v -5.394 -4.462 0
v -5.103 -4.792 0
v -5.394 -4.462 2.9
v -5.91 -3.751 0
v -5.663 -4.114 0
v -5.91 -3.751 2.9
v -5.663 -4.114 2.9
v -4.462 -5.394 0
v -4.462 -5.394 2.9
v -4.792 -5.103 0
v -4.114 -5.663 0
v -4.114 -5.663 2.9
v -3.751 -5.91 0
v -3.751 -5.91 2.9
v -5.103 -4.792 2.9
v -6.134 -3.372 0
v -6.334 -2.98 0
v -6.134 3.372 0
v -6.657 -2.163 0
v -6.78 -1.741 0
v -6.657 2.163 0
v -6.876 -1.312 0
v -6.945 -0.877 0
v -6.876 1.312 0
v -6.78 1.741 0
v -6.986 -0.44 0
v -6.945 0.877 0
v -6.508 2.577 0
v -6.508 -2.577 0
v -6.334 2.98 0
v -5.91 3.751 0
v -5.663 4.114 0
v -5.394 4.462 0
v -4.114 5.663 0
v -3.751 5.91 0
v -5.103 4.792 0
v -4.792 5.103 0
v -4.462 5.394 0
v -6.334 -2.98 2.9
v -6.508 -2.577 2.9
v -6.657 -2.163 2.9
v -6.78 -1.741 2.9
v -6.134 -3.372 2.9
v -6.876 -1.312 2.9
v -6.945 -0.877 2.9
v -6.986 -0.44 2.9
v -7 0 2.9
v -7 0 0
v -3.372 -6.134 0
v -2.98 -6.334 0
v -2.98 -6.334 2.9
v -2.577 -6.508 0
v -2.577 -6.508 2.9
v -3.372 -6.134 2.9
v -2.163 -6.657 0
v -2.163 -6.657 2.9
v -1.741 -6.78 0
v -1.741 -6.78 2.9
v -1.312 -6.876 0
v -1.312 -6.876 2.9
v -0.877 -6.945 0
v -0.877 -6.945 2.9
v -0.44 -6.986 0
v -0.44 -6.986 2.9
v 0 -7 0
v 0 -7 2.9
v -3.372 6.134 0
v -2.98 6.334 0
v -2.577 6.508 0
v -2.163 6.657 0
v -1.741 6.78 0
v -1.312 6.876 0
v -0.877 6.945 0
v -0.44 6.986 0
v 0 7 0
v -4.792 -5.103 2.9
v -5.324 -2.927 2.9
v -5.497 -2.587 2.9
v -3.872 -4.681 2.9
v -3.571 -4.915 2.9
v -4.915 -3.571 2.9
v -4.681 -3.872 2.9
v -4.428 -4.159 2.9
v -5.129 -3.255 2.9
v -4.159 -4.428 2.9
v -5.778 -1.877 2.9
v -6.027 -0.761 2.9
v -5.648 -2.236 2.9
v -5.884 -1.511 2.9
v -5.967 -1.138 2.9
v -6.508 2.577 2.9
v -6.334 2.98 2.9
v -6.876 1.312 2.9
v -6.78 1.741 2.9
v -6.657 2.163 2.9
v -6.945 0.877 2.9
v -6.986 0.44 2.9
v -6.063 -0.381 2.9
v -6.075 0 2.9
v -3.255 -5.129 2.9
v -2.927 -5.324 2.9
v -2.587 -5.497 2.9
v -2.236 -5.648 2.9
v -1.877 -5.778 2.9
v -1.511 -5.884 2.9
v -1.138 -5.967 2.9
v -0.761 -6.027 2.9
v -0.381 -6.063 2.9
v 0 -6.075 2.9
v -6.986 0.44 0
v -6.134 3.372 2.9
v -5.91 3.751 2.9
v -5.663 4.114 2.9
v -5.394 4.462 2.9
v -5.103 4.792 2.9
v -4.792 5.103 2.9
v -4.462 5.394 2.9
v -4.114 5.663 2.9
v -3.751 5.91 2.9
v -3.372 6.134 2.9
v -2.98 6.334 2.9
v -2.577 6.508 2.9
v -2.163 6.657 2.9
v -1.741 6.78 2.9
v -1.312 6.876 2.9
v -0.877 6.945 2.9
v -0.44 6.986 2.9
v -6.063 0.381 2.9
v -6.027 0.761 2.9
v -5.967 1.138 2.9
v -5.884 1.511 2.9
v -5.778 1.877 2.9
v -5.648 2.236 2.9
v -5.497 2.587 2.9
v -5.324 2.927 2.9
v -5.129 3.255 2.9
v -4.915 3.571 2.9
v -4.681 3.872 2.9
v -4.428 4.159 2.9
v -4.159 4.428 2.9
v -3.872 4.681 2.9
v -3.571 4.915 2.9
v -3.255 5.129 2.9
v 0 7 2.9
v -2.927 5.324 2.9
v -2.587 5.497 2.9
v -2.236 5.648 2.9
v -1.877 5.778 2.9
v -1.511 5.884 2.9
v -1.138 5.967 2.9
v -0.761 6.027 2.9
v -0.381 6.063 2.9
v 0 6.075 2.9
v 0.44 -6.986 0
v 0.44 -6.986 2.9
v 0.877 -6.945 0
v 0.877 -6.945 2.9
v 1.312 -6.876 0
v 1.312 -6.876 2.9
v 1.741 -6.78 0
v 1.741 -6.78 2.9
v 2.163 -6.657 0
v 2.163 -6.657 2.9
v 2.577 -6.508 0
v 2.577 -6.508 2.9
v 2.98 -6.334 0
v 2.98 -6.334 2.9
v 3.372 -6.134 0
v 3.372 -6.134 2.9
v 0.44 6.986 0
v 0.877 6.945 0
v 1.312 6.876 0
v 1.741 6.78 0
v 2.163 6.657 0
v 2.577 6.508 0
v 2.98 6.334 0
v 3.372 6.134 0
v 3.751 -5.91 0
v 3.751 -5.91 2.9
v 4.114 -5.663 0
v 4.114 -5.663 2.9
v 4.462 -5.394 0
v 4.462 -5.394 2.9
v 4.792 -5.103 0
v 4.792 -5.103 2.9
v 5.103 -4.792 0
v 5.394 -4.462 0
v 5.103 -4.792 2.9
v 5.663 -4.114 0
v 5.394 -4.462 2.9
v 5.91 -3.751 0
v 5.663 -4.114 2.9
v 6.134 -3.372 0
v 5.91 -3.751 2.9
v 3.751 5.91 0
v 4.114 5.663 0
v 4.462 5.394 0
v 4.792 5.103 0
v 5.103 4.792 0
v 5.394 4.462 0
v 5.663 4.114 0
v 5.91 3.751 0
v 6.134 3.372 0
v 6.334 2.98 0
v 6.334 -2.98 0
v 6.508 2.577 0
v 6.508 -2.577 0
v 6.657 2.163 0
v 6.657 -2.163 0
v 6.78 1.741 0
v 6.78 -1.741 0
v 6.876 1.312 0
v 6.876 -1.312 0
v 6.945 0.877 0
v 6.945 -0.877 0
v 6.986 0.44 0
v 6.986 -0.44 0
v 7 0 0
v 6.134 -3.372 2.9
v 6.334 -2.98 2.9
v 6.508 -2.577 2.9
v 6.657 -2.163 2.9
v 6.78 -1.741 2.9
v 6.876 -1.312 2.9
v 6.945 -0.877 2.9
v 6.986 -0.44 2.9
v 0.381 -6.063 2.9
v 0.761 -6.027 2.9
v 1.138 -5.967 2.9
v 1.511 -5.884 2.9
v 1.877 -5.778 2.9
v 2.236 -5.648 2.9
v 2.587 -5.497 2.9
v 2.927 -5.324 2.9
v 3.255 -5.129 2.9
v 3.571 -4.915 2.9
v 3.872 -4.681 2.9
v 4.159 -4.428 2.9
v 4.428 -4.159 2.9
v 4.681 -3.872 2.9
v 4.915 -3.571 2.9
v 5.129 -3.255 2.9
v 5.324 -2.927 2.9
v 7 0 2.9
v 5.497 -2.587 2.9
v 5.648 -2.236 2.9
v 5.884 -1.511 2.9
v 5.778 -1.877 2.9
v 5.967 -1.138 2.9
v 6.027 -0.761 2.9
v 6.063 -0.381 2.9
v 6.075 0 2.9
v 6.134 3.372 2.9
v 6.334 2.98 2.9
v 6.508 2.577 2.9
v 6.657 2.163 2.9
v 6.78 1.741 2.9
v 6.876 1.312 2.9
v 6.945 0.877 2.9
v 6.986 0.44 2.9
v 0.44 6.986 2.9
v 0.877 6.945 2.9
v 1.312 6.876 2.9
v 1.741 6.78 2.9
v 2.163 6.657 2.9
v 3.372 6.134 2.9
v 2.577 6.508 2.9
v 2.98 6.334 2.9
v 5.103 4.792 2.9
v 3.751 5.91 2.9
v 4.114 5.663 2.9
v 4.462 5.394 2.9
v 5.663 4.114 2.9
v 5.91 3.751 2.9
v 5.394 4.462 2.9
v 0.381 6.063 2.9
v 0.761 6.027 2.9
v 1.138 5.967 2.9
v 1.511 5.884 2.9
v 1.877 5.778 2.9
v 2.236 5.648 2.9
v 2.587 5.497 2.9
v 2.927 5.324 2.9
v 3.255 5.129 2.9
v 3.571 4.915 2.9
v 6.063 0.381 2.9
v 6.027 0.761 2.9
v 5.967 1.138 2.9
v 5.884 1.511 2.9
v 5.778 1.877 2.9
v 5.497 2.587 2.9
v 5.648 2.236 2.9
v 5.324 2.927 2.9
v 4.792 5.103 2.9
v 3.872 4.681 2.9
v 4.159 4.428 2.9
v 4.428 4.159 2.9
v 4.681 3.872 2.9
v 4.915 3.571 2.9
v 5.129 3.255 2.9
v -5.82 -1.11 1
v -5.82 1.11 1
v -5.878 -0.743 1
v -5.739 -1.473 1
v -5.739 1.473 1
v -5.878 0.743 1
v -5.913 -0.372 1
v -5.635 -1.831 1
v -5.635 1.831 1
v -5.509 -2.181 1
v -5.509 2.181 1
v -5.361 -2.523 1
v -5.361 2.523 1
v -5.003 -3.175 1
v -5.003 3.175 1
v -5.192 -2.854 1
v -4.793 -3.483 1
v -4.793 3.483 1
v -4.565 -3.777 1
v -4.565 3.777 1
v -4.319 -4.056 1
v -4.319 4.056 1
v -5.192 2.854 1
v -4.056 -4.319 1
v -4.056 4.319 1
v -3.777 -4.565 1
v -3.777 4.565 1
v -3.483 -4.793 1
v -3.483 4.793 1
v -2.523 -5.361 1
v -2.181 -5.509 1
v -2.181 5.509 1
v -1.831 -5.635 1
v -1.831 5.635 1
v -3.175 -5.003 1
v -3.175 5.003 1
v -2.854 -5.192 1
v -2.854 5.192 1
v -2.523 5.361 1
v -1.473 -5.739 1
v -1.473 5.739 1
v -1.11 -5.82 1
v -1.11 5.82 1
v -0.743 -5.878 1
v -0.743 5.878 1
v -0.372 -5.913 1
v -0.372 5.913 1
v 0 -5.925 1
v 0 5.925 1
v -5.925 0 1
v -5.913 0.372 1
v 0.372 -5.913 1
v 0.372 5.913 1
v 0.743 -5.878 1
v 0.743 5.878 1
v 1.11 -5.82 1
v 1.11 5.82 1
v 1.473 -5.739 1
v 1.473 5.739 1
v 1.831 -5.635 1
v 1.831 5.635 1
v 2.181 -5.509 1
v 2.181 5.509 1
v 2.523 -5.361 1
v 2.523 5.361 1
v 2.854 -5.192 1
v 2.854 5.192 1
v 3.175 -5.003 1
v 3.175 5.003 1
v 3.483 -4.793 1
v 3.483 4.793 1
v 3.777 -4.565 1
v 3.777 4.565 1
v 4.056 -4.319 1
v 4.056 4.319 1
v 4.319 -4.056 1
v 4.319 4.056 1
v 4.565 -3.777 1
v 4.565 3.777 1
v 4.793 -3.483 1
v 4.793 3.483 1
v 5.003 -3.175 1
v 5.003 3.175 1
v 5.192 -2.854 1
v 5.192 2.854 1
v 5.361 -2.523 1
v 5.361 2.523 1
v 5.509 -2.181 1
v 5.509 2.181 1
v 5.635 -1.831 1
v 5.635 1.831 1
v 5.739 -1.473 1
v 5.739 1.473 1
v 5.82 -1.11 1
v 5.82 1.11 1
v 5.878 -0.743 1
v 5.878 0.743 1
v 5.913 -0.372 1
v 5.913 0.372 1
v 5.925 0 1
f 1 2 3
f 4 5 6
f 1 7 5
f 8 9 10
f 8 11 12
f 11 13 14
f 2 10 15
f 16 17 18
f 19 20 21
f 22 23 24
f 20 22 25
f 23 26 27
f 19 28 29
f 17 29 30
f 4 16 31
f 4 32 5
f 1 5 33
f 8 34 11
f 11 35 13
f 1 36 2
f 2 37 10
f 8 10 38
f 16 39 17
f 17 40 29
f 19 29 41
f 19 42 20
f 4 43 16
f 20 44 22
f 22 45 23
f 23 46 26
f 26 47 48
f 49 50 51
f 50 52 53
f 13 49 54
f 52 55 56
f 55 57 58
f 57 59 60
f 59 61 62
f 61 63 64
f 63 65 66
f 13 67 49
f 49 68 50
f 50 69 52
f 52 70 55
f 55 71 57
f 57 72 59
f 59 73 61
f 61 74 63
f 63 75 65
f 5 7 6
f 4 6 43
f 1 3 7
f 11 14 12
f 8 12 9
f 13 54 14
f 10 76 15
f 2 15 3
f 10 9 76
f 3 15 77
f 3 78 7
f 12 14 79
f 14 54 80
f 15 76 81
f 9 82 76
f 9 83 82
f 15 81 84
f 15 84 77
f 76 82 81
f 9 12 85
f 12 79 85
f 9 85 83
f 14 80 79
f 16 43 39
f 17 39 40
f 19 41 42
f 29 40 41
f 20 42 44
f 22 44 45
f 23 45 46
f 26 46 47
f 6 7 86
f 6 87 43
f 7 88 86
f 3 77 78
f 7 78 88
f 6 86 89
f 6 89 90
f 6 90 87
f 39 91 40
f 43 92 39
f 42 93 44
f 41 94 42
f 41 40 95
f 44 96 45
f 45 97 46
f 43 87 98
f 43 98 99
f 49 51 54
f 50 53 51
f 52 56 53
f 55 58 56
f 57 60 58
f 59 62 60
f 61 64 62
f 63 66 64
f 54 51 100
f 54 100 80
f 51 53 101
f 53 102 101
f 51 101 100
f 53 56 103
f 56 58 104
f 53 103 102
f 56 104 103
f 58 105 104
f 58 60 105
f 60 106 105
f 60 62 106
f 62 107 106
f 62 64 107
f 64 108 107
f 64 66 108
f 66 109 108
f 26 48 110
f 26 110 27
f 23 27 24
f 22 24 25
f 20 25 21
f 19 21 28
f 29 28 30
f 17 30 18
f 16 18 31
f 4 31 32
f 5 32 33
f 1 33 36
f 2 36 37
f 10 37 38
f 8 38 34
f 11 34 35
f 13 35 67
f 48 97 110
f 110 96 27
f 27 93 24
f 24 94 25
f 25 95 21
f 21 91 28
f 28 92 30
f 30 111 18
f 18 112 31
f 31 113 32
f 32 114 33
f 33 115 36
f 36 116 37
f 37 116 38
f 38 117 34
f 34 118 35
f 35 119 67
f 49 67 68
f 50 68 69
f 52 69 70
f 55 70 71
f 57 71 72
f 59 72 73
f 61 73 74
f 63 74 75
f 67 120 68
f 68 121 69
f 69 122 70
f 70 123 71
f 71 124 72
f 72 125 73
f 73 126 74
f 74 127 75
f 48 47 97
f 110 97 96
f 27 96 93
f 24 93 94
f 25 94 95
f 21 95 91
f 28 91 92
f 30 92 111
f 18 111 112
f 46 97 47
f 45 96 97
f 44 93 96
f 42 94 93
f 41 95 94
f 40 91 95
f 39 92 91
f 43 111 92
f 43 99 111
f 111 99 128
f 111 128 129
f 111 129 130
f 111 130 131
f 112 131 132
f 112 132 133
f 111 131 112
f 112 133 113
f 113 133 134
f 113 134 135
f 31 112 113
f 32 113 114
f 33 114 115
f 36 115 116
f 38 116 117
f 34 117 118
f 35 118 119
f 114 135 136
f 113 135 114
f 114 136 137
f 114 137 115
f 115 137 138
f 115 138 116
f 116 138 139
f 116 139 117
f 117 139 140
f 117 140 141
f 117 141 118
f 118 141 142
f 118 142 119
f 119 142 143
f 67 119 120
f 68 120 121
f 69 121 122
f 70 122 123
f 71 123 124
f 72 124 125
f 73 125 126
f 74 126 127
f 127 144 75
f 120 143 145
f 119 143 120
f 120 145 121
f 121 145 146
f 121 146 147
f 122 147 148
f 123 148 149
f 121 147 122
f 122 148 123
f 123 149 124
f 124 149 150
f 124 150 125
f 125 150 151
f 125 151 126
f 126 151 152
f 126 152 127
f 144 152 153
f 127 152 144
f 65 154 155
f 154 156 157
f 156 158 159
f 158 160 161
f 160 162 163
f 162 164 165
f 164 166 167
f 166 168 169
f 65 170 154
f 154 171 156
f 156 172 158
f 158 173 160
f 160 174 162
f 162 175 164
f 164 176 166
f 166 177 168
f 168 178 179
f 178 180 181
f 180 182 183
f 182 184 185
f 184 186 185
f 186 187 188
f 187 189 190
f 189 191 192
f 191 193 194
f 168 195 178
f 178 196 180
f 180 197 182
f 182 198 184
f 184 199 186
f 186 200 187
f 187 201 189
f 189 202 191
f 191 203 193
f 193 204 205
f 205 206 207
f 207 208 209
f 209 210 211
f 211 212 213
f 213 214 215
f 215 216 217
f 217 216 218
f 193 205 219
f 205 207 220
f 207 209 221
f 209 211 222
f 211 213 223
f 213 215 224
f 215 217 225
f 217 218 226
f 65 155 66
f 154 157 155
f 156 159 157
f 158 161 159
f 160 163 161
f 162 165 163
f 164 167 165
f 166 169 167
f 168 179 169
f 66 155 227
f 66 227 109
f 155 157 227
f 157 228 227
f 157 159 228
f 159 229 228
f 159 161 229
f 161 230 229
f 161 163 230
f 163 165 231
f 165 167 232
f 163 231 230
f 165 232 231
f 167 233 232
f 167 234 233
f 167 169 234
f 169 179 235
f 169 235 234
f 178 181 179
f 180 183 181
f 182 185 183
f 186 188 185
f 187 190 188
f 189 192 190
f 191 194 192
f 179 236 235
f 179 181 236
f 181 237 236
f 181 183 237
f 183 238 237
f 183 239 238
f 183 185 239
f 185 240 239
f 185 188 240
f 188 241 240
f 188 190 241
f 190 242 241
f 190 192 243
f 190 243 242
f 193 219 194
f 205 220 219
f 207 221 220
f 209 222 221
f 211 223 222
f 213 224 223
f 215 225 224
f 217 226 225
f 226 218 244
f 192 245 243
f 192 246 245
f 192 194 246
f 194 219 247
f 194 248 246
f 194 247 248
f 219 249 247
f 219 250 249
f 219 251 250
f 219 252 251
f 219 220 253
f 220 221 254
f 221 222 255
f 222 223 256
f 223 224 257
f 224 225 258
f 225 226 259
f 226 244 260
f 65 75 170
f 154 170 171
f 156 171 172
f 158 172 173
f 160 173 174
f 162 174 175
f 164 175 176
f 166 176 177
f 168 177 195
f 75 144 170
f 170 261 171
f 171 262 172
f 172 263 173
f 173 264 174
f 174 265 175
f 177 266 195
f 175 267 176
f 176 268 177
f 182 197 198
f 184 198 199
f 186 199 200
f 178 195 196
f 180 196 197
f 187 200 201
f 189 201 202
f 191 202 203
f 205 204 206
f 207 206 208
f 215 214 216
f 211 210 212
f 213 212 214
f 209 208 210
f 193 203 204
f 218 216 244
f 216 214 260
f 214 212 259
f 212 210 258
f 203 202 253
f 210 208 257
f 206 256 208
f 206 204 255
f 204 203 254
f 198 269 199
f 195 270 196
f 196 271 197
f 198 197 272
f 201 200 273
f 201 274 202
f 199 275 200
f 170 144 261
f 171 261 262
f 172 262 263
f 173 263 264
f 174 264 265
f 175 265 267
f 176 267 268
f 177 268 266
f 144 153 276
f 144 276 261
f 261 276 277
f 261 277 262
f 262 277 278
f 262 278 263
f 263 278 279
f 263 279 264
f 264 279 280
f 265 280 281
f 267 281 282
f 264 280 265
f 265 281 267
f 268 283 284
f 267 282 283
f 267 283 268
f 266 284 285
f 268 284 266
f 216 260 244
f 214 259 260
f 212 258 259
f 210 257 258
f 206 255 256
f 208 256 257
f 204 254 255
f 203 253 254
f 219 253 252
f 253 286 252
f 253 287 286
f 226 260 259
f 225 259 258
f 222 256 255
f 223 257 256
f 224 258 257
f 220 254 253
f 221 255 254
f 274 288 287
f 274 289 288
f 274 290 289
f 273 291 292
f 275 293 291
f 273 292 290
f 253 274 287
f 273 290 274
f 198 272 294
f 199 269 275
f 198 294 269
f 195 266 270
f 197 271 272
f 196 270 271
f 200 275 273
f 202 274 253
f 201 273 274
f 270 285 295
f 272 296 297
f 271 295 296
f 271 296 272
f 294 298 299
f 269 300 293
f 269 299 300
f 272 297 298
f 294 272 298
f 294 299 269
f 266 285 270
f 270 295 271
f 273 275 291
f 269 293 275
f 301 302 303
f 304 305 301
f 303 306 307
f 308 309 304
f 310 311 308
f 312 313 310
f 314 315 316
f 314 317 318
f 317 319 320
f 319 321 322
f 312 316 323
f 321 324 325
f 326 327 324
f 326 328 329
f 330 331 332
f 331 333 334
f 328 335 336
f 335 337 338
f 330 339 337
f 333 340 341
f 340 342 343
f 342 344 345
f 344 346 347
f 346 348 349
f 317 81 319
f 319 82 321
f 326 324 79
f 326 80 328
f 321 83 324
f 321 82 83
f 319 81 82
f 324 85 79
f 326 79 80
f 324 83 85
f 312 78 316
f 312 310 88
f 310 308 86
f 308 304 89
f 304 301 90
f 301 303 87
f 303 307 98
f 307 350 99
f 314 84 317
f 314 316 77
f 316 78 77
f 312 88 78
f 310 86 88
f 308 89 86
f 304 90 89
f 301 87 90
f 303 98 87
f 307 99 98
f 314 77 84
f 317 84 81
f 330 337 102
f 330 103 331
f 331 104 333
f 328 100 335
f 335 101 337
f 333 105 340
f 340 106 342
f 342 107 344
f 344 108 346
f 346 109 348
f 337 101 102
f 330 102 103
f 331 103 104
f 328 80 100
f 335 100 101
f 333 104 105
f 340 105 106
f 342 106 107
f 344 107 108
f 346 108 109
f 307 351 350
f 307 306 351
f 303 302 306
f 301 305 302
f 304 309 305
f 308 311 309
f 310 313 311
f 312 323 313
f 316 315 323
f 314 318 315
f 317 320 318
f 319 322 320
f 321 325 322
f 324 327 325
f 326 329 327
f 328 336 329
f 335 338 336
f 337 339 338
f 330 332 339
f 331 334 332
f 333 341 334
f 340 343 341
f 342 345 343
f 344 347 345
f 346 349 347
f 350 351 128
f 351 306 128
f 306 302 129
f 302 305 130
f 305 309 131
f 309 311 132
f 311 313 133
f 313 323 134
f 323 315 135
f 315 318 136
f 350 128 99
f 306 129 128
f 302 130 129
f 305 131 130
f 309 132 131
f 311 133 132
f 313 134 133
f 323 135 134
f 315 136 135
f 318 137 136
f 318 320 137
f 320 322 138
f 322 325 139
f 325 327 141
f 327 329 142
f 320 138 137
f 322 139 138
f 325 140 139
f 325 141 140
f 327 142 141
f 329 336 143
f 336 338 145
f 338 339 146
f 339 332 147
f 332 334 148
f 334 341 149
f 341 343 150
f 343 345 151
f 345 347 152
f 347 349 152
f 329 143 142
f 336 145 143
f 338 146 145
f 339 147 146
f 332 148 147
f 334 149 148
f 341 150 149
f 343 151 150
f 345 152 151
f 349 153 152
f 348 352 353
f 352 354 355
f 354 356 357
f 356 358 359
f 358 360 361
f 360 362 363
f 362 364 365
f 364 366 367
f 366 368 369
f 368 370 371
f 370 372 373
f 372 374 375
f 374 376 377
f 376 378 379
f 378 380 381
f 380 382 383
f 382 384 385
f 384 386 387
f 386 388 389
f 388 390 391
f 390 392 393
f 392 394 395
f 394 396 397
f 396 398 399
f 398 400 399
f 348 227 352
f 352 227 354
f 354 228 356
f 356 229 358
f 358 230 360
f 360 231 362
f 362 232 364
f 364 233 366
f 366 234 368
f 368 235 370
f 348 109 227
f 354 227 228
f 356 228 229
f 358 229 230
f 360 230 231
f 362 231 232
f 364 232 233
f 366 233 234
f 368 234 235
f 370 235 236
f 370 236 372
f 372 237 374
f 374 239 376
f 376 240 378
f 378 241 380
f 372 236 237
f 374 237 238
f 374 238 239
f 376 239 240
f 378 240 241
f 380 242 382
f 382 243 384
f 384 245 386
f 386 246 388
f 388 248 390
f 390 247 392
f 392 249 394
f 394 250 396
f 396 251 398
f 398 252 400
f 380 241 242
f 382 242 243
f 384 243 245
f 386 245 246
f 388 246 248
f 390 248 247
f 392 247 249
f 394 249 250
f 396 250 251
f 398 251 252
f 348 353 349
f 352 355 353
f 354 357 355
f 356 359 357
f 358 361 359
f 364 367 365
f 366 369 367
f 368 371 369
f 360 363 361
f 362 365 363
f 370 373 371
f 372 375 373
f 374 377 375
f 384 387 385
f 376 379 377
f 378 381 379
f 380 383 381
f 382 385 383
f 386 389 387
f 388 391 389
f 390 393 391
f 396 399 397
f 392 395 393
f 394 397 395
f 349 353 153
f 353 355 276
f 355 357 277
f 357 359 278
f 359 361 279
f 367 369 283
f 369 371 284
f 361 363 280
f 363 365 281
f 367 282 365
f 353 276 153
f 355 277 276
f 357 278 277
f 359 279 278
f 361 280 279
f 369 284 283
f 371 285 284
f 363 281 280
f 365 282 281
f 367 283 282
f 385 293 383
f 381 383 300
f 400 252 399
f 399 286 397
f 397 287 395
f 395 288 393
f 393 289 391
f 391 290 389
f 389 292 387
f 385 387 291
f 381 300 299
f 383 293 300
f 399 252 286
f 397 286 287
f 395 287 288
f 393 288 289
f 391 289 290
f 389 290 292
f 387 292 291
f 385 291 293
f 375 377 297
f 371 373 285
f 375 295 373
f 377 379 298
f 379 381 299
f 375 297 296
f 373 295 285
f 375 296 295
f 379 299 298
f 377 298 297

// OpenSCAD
$fn = 100;

difference() {
    cylinder(h=2.9, d=14);
    translate([0, 0, 1])
        cylinder(h=1.9, r1=5.925, r2=6.075);
}
